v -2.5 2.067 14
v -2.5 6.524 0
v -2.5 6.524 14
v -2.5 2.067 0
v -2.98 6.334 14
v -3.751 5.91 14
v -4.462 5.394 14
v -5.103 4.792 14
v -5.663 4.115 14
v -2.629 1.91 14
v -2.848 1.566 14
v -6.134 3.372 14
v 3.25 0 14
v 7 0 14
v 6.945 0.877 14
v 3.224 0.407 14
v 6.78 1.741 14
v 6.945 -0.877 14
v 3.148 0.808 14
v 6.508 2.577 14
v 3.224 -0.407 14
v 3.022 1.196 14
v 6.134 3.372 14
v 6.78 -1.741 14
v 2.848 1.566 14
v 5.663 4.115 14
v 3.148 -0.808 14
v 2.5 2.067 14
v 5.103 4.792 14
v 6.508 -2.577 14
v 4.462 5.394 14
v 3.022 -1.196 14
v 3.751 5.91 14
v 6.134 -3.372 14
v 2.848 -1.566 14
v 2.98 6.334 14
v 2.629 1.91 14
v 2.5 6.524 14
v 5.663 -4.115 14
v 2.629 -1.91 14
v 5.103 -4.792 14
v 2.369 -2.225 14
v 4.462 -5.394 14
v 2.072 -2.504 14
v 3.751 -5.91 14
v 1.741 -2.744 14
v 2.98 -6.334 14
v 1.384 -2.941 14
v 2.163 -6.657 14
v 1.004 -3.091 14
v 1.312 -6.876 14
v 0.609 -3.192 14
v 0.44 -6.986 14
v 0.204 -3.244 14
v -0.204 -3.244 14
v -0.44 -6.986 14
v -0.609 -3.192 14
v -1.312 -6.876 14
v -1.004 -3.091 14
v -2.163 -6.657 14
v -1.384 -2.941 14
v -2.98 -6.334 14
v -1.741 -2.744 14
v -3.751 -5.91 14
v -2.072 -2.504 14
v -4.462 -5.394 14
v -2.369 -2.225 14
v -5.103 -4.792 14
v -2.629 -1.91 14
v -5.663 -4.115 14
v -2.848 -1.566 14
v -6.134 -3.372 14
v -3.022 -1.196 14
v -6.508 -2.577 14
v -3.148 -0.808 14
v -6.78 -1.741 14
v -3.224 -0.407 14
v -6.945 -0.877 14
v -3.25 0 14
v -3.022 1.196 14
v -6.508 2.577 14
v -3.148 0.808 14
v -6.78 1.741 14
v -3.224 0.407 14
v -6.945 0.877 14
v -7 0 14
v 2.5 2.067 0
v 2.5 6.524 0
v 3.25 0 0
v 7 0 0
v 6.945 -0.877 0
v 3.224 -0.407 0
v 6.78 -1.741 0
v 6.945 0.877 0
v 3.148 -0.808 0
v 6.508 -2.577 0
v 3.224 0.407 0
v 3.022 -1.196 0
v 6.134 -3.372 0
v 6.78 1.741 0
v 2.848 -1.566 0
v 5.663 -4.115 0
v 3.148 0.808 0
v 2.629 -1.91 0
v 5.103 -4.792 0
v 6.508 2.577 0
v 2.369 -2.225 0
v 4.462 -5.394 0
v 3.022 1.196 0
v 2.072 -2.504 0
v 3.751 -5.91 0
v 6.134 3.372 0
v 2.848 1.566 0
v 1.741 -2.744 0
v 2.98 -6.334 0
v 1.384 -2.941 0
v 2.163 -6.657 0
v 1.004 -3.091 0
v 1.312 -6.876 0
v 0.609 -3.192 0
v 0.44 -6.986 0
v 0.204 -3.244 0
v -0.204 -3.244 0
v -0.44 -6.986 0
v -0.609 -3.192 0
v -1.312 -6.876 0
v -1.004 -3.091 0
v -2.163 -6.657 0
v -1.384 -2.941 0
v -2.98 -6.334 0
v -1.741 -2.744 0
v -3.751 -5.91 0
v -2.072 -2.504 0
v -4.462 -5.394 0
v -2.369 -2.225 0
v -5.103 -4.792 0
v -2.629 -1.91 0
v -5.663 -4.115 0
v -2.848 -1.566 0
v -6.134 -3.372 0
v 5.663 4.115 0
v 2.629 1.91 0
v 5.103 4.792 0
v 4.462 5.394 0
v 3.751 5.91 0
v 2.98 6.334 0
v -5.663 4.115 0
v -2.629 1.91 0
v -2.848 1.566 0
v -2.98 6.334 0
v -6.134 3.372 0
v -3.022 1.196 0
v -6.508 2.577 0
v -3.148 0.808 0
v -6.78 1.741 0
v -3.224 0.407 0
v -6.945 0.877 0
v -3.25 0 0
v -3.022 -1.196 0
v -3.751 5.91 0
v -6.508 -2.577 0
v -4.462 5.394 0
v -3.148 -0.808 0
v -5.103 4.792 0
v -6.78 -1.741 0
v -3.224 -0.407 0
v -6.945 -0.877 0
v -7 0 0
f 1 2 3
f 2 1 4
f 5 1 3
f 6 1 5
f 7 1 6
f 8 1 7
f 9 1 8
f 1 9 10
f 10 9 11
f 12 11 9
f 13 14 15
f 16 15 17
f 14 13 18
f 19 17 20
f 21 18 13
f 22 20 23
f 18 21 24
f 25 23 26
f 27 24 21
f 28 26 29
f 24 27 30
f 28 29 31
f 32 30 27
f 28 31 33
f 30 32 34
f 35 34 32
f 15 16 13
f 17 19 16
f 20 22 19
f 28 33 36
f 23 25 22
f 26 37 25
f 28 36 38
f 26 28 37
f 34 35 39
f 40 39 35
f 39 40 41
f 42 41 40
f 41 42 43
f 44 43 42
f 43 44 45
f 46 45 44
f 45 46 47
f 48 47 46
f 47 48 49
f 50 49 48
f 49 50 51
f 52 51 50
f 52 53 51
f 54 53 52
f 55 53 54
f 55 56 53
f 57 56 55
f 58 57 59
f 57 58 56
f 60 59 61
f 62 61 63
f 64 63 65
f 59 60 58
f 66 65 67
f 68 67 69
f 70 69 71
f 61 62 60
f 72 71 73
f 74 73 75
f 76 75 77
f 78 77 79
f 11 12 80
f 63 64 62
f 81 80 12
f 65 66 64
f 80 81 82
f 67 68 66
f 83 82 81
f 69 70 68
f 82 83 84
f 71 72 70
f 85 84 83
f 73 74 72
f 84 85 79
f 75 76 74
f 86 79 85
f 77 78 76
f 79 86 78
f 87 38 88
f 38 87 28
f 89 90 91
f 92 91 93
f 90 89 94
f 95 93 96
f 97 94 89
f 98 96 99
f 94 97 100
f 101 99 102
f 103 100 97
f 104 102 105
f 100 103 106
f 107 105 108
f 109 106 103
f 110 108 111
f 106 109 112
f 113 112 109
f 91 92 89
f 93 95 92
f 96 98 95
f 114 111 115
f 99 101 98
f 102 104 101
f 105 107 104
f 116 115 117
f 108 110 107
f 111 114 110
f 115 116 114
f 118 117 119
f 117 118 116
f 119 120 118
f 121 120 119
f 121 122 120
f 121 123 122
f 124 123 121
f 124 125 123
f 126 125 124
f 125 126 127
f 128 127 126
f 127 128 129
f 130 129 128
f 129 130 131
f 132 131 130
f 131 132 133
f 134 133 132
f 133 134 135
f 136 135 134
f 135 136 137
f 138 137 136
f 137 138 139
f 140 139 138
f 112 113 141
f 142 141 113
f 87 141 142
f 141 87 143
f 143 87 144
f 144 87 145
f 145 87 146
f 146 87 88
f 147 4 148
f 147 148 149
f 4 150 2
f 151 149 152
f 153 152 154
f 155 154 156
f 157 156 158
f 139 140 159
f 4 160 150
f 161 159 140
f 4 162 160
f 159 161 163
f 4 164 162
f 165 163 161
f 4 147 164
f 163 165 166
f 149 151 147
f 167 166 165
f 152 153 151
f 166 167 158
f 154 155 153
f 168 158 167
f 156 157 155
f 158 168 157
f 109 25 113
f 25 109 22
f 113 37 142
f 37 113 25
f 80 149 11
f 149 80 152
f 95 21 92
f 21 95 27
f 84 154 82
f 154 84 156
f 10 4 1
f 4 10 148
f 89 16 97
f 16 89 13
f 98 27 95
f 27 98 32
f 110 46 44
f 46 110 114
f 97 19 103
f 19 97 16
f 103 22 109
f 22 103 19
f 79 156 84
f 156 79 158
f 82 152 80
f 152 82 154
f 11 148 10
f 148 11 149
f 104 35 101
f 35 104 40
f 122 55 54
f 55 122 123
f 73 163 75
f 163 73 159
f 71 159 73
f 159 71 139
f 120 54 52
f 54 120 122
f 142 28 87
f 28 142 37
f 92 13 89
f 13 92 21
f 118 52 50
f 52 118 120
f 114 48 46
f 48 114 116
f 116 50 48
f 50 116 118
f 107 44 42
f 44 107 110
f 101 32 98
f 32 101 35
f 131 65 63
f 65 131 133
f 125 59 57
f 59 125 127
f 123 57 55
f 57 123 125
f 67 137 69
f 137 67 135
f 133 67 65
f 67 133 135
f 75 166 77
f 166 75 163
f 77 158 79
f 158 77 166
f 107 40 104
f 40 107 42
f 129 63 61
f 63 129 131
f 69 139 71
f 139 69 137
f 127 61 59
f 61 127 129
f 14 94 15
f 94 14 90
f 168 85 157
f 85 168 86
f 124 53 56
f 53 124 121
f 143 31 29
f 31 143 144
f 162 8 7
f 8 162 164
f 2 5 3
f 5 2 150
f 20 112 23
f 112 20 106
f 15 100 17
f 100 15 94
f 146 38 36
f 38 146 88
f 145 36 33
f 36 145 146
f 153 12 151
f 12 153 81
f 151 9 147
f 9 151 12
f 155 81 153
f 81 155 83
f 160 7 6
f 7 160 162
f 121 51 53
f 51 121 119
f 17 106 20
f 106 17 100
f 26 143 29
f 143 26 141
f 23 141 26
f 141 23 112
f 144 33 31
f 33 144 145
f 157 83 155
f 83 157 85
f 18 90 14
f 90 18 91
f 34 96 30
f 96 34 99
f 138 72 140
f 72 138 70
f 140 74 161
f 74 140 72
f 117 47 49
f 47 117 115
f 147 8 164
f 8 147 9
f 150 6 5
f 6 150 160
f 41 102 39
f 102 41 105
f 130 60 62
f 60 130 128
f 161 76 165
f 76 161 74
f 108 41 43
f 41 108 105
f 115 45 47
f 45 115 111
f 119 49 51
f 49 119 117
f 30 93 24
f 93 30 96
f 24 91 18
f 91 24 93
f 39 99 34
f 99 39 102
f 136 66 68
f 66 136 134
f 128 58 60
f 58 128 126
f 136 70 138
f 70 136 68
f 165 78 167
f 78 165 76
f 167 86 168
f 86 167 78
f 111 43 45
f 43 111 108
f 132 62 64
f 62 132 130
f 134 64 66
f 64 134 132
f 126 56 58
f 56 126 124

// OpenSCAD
// 14 mm axial variant of the original 9 mm slotted cover.
$fn = 50;


difference() {
	union() {
		cylinder(h = 14, r = 7.0000000000);
	}
	union() {
		#translate(v = [-2.5000000000, 0.0000000000, 0]) {
			cube(size = [5, 20, 14]);
		}
		translate(v = [0, 0, -100]) {
			cylinder(h = 200, r = 3.2500000000);
		}
		translate(v = [0, 0, -100]) {
			cylinder(h = 200, r = 1.8000000000);
		}
	}
}
